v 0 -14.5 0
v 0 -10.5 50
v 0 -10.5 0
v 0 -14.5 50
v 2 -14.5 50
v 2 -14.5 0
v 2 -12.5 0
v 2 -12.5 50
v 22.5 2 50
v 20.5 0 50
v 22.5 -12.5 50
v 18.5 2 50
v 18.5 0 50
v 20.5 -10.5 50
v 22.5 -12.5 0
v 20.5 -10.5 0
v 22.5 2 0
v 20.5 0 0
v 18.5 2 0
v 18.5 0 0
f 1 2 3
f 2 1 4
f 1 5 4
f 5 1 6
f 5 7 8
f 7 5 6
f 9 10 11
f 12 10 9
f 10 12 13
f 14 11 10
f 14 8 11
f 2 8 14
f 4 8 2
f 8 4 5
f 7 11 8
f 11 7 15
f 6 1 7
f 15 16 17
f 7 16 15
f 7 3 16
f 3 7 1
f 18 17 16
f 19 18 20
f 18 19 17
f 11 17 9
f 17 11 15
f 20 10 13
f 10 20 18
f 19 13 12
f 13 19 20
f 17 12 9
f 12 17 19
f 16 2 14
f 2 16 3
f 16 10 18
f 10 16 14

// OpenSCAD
// Bed alignment tool

$fn = 32; // accuracy of curves
pad = 0.01; // padding to maintain mainfold
fudge = 0.25; // extra space for push fit

t = 2.0;
w = 50.0;
bed_w = 20.5;
bed_h = 10.5;


rotate([90,0,0]) 
difference() {
    
    union() {
        translate([0,0,bed_h+t]) cube([t,w,t]);
        cube([bed_w+t,w,bed_h+t]);
        translate([bed_w-t,0,-t]) cube([t*2,w,t]);
    }
    cube([bed_w,w,bed_h]);

}
